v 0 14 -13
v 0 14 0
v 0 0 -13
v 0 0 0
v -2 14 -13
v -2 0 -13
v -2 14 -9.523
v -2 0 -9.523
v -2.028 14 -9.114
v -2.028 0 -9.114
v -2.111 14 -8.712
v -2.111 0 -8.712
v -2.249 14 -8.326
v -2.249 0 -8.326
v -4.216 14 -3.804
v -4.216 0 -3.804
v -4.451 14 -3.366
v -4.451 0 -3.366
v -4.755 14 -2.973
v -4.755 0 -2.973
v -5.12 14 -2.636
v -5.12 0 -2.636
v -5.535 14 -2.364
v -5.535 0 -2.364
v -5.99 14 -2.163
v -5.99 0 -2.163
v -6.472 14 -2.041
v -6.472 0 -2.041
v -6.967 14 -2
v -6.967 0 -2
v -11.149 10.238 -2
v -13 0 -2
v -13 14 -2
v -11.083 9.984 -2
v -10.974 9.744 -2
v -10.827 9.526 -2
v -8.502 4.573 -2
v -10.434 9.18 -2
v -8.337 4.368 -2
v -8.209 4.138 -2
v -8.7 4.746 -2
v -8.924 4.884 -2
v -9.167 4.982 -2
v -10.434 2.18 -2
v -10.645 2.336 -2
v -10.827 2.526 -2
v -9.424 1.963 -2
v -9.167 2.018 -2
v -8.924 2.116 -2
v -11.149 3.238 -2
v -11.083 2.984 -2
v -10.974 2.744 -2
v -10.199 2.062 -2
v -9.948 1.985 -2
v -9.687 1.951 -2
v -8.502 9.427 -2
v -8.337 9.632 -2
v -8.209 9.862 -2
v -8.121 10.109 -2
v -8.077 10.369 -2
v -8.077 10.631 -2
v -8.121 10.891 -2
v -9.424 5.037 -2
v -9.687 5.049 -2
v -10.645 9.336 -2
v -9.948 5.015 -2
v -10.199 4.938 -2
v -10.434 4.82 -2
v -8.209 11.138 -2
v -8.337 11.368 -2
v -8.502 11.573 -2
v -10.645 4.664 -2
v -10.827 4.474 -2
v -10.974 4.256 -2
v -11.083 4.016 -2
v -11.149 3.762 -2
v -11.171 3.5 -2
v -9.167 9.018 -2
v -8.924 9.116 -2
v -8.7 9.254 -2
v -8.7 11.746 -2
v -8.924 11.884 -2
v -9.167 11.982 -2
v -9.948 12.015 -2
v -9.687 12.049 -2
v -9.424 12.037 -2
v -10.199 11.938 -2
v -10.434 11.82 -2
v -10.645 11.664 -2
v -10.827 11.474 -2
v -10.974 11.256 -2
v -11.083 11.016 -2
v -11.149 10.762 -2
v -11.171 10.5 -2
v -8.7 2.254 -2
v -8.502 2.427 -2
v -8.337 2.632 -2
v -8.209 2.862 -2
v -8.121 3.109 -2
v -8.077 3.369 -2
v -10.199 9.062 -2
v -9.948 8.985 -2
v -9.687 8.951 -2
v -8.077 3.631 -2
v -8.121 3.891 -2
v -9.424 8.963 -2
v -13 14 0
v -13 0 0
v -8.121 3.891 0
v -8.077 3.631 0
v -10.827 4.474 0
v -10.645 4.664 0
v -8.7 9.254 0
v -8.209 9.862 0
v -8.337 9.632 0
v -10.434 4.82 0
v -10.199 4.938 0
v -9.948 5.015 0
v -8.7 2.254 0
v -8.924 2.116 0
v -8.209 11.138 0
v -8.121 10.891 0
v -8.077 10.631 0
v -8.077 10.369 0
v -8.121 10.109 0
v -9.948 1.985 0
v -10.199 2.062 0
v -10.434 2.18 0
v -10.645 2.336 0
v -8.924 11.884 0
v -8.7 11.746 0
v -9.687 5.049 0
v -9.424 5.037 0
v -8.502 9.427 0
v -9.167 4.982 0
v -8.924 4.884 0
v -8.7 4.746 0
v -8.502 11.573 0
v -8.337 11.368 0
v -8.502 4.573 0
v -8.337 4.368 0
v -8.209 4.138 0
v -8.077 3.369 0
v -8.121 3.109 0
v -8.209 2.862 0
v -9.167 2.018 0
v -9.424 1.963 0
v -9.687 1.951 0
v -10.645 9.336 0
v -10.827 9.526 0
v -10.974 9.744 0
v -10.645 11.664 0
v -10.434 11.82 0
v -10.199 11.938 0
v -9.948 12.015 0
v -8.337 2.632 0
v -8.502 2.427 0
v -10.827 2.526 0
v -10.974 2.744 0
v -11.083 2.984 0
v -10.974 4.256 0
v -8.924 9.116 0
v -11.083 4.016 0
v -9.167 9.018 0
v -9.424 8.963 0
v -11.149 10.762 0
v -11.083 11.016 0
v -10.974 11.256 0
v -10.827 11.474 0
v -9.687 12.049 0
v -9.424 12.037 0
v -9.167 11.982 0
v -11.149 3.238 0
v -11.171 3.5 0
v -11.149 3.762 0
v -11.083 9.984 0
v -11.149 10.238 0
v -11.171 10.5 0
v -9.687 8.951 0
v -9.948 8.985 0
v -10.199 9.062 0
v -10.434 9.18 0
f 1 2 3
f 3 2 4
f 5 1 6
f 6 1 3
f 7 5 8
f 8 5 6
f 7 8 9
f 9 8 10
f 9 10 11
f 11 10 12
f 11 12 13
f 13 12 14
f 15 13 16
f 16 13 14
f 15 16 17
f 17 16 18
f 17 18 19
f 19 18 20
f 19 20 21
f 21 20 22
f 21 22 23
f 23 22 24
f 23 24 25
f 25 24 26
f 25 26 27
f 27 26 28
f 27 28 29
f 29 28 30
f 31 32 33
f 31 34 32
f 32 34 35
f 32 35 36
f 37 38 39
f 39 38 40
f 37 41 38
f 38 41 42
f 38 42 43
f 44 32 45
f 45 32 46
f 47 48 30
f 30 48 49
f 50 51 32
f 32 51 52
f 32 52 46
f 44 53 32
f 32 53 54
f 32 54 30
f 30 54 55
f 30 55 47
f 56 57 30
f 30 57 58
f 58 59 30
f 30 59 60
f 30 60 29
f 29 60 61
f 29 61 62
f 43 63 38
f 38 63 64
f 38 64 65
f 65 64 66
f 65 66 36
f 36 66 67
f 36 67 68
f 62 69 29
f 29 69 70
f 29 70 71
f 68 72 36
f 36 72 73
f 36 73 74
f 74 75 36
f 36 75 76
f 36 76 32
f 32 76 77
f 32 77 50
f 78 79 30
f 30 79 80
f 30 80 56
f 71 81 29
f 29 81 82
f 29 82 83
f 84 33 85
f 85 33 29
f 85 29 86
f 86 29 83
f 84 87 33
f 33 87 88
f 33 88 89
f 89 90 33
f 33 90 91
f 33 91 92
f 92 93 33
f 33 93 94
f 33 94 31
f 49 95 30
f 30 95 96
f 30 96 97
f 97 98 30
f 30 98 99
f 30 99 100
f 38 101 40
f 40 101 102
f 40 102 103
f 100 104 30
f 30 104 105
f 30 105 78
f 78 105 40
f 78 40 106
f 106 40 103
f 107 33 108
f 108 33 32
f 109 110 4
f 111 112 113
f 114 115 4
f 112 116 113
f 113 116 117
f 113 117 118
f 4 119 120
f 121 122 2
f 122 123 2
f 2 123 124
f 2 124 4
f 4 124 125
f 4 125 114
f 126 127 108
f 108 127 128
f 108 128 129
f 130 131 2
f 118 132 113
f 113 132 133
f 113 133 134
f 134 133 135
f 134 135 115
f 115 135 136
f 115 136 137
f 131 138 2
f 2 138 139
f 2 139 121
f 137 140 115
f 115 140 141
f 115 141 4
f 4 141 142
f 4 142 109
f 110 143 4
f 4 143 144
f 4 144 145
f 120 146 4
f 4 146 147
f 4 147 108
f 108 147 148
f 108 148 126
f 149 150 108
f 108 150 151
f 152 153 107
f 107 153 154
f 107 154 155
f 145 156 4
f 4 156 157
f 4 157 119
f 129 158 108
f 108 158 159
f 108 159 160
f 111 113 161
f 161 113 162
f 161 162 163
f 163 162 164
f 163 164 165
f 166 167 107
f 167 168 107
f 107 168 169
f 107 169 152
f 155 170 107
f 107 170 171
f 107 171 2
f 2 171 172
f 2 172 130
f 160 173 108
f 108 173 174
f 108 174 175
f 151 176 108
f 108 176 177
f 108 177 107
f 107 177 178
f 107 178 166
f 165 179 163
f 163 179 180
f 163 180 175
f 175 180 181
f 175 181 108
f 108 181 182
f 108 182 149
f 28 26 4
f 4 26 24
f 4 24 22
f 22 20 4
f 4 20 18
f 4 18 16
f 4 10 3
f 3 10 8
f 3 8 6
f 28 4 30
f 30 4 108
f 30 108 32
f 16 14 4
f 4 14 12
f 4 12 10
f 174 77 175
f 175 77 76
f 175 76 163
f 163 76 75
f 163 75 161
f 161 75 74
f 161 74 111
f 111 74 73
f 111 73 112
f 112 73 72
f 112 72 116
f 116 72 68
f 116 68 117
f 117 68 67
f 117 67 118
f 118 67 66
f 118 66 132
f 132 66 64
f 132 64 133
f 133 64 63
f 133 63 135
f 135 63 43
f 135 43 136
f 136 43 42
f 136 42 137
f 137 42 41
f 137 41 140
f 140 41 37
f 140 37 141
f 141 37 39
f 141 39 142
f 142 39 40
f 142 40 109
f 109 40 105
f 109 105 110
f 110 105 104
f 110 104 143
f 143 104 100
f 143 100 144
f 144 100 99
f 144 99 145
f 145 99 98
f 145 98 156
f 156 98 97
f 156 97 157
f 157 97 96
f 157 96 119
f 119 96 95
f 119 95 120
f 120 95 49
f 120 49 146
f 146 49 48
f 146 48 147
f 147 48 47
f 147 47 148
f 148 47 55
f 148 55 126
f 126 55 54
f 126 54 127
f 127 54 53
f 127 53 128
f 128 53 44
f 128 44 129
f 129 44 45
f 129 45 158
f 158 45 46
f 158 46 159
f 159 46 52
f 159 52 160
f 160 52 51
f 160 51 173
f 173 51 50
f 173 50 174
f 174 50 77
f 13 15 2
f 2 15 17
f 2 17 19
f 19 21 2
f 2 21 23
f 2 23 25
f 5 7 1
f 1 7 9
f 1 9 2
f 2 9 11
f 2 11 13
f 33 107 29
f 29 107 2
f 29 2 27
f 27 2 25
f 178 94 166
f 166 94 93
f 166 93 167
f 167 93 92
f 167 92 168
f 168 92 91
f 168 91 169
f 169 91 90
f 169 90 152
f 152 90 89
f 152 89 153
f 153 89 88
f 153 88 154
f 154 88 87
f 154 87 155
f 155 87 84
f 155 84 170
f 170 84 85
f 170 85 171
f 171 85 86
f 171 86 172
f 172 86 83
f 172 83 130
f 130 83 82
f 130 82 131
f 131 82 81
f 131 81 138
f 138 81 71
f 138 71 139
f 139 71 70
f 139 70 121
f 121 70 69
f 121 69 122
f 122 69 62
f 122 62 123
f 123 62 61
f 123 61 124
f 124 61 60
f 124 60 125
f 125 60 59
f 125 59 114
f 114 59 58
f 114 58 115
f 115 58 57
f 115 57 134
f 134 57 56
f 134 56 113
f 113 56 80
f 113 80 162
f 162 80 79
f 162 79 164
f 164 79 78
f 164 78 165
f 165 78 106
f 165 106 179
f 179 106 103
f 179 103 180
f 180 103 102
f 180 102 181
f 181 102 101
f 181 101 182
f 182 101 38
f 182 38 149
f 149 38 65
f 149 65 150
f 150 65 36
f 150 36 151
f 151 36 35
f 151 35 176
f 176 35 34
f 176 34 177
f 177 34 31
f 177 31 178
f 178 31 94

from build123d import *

# Parameters (mm, degrees)
BOSS_EXTRUDE1_DEPTH = 7
CUT_EXTRUDE1_REACH  = 20.412
SKETCH3_R           = 1.55


with BuildPart() as part:
    # Sketch1 → Boss-Extrude1 (new body)
    with BuildSketch(Plane(origin=(0, 0, 0), x_dir=(1, 0, 0), z_dir=(0, 1, 0))):
        with BuildLine():
            Line((0, 0), (-13, 0))
            Line((-13, 0), (-13, 2))
            Line((-13, 2), (-6.966770758, 2))
            ThreePointArc((-6.966770758, 2), (-5.321958583, 2.49109727), (-4.215654921, 3.803604727))
            Line((-4.215654921, 3.803604727), (-2.248884163, 8.326202151))
            ThreePointArc((-2.248884163, 8.326202151), (-2.062880024, 8.911593133), (-2, 9.522597424))
            Line((-2, 9.522597424), (-2, 13))
            Line((-2, 13), (0, 13))
            Line((0, 13), (0, 0))
        make_face()
    extrude(amount=BOSS_EXTRUDE1_DEPTH)

    # Sketch3 → Cut-Extrude1 (cut, up to next)
    with BuildSketch(Plane(origin=(0, 0, -2), x_dir=(-1, 0, 0), z_dir=(0, 0, -1)), mode=Mode.PRIVATE) as cut_extrude1_sk1:
        with Locations((9.621320344, 3.5)):
            Circle(SKETCH3_R)
    cut_extrude1_tool1 = extrude(cut_extrude1_sk1.sketch, amount=-CUT_EXTRUDE1_REACH, mode=Mode.PRIVATE) & part.part
    add(cut_extrude1_tool1.solids().sort_by_distance((-9.62132, 3.5, -2))[0], mode=Mode.SUBTRACT)

    # Mirror1: part across plane


with BuildPart() as part_1:
    add(part.part)
    add(part.part.mirror(Plane(origin=(-6.966770758, 7, -5), x_dir=(0, 0, 1), z_dir=(0, -1, 0))))


solid = part_1.part
